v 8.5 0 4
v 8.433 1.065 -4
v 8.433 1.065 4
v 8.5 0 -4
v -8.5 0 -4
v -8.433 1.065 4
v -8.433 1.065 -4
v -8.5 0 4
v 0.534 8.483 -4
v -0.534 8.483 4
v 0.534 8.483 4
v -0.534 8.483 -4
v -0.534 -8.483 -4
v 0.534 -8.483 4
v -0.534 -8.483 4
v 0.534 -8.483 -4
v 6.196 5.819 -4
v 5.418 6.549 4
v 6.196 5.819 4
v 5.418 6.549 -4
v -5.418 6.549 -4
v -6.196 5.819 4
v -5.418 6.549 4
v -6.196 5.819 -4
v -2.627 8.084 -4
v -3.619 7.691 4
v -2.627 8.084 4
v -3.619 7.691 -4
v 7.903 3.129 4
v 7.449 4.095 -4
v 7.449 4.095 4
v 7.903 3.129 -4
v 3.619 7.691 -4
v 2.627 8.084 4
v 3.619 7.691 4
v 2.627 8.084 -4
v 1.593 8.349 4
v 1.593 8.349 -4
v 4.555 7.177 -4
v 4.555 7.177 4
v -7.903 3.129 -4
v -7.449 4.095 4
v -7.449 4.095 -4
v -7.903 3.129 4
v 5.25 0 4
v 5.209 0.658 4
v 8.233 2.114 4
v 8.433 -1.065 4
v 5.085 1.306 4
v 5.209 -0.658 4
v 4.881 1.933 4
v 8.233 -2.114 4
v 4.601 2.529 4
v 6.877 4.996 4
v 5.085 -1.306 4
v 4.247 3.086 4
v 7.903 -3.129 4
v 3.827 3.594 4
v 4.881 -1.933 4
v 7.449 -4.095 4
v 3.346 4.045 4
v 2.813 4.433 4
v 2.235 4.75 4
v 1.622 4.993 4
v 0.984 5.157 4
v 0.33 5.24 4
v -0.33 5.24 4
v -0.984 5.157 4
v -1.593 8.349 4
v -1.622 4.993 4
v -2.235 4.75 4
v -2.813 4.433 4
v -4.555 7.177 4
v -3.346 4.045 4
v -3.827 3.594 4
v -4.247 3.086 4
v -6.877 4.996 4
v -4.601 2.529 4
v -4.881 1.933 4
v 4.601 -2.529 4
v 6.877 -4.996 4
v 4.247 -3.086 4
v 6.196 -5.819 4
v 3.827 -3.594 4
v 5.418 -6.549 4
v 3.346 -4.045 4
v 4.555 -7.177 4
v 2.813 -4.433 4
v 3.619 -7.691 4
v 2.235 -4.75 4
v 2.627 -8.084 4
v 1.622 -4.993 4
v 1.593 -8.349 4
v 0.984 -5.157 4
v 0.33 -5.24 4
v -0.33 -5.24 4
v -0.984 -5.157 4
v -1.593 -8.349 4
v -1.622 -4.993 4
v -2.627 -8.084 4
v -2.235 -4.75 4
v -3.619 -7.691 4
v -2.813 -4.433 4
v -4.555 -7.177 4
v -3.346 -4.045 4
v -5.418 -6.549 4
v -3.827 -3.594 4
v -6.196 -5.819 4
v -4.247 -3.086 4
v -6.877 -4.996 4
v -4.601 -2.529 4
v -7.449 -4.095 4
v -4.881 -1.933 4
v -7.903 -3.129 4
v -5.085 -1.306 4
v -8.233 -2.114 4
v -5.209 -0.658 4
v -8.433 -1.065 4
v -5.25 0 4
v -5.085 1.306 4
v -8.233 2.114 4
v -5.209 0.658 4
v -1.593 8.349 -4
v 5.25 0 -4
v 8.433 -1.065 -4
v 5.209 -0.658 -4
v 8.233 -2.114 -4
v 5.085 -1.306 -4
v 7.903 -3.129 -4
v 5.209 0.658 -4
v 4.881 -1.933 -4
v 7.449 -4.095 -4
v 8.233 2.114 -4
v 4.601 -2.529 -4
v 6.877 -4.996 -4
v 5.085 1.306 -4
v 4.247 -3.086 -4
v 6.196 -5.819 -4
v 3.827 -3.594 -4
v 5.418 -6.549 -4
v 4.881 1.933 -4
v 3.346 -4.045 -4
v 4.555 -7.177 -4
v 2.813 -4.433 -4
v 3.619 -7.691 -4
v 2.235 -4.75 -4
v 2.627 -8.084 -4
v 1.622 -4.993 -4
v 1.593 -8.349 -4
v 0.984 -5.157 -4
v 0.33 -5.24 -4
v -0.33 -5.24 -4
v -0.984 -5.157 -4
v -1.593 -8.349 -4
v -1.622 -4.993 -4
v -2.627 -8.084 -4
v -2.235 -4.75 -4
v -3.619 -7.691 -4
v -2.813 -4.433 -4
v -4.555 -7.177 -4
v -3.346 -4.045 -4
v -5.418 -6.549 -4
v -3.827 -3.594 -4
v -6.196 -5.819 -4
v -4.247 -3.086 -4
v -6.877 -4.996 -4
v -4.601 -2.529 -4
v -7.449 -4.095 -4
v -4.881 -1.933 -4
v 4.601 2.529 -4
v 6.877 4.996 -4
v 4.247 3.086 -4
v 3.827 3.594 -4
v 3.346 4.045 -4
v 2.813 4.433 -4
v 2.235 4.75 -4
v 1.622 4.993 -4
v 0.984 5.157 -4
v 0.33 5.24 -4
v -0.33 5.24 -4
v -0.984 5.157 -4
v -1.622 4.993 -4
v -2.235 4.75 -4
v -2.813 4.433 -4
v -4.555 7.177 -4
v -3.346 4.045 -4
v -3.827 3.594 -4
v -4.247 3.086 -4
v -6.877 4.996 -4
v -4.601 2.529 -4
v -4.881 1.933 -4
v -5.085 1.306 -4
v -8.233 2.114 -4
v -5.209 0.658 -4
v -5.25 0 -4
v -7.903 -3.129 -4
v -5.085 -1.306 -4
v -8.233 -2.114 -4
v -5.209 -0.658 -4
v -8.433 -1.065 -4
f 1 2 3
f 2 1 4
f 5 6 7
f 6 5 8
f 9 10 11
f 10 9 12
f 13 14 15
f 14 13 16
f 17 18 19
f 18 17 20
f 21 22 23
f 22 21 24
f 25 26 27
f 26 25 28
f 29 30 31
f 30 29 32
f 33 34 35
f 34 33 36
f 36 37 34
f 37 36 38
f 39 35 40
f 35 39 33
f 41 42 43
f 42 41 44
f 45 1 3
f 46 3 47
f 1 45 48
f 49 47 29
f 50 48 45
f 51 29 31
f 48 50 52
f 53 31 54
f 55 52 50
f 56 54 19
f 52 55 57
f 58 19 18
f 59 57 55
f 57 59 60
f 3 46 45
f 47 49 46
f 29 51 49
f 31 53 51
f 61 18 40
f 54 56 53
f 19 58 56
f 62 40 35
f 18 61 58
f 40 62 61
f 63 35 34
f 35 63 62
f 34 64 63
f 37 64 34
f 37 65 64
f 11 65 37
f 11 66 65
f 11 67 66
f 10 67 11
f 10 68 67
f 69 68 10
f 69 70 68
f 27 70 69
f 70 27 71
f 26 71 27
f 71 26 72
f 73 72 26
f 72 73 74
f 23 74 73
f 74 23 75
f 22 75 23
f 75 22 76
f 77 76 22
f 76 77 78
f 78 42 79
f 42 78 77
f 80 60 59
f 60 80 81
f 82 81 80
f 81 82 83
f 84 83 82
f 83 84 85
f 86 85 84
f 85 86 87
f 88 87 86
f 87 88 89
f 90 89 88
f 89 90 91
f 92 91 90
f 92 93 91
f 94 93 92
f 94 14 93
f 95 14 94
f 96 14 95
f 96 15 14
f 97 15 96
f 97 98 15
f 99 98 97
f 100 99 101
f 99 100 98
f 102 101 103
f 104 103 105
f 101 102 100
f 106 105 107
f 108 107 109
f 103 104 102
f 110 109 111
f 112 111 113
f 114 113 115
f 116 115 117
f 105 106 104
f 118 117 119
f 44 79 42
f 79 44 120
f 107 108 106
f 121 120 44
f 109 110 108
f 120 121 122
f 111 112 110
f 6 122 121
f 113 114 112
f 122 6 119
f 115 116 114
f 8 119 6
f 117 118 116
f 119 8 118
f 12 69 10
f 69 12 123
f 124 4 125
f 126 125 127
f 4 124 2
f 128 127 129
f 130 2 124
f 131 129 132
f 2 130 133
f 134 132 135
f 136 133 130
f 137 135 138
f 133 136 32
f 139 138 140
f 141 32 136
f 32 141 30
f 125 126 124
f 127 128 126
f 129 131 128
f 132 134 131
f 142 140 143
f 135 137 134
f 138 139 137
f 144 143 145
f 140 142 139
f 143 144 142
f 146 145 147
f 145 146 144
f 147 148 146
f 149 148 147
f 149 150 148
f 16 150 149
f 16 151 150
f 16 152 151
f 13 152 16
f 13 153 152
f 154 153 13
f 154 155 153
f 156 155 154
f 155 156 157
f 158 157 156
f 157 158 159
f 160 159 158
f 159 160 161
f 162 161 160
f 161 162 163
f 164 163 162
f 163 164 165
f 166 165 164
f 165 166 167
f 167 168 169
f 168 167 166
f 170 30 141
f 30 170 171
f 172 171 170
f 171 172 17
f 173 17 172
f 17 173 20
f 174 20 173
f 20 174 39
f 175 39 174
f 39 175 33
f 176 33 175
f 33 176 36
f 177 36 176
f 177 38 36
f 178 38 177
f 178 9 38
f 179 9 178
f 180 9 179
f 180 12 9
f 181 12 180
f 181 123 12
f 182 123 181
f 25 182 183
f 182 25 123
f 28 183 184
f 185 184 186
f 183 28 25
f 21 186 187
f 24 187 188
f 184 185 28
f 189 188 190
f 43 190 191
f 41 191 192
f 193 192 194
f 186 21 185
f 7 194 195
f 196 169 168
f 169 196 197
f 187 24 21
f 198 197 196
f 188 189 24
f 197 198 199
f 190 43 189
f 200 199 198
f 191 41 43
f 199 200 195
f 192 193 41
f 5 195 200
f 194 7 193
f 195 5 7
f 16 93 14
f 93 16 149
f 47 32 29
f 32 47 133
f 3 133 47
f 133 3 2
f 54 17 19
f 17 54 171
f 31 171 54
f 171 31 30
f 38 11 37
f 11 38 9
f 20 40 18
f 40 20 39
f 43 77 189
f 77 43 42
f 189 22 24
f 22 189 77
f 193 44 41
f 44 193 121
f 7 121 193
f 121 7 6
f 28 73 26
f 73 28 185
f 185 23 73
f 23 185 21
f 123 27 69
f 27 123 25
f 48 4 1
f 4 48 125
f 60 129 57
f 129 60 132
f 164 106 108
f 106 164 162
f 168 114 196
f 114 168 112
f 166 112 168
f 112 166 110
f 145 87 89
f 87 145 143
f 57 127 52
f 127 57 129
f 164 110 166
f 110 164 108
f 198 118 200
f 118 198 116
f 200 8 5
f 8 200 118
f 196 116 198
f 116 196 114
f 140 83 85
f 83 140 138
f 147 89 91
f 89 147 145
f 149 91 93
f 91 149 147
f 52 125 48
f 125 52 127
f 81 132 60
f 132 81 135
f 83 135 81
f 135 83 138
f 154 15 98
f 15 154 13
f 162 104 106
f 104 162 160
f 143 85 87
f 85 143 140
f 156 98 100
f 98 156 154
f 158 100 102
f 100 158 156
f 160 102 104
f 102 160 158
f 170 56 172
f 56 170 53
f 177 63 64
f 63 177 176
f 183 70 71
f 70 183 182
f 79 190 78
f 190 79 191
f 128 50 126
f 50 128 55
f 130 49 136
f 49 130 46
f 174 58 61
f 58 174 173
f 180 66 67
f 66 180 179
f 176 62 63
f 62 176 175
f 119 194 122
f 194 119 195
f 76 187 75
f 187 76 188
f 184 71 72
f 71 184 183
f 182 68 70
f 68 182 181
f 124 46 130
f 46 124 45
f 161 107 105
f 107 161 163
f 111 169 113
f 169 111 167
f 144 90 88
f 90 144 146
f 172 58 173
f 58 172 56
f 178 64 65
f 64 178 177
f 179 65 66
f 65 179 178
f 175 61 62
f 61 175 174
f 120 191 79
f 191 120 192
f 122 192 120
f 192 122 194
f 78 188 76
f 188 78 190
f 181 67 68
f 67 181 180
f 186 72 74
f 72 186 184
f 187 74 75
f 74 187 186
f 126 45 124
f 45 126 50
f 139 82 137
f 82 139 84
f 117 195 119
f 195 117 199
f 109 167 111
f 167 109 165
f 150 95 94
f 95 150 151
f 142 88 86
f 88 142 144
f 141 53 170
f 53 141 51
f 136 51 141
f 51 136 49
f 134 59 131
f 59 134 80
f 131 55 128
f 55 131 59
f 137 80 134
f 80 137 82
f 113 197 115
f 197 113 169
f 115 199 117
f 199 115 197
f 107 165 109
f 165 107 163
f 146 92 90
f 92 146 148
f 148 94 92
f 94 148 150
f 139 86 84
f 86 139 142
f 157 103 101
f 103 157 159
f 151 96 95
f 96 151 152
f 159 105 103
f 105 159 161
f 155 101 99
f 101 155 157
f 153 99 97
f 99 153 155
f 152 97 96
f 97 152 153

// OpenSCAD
$fn = 50;


difference() {
	union() {
		translate(v = [0, 0, -4.0000000000]) {
			cylinder(h = 8, r = 8.5000000000);
		}
	}
	union() {
		translate(v = [0, 0, -100.0000000000]) {
			cylinder(h = 200, r = 5.2500000000);
		}
	}
}
